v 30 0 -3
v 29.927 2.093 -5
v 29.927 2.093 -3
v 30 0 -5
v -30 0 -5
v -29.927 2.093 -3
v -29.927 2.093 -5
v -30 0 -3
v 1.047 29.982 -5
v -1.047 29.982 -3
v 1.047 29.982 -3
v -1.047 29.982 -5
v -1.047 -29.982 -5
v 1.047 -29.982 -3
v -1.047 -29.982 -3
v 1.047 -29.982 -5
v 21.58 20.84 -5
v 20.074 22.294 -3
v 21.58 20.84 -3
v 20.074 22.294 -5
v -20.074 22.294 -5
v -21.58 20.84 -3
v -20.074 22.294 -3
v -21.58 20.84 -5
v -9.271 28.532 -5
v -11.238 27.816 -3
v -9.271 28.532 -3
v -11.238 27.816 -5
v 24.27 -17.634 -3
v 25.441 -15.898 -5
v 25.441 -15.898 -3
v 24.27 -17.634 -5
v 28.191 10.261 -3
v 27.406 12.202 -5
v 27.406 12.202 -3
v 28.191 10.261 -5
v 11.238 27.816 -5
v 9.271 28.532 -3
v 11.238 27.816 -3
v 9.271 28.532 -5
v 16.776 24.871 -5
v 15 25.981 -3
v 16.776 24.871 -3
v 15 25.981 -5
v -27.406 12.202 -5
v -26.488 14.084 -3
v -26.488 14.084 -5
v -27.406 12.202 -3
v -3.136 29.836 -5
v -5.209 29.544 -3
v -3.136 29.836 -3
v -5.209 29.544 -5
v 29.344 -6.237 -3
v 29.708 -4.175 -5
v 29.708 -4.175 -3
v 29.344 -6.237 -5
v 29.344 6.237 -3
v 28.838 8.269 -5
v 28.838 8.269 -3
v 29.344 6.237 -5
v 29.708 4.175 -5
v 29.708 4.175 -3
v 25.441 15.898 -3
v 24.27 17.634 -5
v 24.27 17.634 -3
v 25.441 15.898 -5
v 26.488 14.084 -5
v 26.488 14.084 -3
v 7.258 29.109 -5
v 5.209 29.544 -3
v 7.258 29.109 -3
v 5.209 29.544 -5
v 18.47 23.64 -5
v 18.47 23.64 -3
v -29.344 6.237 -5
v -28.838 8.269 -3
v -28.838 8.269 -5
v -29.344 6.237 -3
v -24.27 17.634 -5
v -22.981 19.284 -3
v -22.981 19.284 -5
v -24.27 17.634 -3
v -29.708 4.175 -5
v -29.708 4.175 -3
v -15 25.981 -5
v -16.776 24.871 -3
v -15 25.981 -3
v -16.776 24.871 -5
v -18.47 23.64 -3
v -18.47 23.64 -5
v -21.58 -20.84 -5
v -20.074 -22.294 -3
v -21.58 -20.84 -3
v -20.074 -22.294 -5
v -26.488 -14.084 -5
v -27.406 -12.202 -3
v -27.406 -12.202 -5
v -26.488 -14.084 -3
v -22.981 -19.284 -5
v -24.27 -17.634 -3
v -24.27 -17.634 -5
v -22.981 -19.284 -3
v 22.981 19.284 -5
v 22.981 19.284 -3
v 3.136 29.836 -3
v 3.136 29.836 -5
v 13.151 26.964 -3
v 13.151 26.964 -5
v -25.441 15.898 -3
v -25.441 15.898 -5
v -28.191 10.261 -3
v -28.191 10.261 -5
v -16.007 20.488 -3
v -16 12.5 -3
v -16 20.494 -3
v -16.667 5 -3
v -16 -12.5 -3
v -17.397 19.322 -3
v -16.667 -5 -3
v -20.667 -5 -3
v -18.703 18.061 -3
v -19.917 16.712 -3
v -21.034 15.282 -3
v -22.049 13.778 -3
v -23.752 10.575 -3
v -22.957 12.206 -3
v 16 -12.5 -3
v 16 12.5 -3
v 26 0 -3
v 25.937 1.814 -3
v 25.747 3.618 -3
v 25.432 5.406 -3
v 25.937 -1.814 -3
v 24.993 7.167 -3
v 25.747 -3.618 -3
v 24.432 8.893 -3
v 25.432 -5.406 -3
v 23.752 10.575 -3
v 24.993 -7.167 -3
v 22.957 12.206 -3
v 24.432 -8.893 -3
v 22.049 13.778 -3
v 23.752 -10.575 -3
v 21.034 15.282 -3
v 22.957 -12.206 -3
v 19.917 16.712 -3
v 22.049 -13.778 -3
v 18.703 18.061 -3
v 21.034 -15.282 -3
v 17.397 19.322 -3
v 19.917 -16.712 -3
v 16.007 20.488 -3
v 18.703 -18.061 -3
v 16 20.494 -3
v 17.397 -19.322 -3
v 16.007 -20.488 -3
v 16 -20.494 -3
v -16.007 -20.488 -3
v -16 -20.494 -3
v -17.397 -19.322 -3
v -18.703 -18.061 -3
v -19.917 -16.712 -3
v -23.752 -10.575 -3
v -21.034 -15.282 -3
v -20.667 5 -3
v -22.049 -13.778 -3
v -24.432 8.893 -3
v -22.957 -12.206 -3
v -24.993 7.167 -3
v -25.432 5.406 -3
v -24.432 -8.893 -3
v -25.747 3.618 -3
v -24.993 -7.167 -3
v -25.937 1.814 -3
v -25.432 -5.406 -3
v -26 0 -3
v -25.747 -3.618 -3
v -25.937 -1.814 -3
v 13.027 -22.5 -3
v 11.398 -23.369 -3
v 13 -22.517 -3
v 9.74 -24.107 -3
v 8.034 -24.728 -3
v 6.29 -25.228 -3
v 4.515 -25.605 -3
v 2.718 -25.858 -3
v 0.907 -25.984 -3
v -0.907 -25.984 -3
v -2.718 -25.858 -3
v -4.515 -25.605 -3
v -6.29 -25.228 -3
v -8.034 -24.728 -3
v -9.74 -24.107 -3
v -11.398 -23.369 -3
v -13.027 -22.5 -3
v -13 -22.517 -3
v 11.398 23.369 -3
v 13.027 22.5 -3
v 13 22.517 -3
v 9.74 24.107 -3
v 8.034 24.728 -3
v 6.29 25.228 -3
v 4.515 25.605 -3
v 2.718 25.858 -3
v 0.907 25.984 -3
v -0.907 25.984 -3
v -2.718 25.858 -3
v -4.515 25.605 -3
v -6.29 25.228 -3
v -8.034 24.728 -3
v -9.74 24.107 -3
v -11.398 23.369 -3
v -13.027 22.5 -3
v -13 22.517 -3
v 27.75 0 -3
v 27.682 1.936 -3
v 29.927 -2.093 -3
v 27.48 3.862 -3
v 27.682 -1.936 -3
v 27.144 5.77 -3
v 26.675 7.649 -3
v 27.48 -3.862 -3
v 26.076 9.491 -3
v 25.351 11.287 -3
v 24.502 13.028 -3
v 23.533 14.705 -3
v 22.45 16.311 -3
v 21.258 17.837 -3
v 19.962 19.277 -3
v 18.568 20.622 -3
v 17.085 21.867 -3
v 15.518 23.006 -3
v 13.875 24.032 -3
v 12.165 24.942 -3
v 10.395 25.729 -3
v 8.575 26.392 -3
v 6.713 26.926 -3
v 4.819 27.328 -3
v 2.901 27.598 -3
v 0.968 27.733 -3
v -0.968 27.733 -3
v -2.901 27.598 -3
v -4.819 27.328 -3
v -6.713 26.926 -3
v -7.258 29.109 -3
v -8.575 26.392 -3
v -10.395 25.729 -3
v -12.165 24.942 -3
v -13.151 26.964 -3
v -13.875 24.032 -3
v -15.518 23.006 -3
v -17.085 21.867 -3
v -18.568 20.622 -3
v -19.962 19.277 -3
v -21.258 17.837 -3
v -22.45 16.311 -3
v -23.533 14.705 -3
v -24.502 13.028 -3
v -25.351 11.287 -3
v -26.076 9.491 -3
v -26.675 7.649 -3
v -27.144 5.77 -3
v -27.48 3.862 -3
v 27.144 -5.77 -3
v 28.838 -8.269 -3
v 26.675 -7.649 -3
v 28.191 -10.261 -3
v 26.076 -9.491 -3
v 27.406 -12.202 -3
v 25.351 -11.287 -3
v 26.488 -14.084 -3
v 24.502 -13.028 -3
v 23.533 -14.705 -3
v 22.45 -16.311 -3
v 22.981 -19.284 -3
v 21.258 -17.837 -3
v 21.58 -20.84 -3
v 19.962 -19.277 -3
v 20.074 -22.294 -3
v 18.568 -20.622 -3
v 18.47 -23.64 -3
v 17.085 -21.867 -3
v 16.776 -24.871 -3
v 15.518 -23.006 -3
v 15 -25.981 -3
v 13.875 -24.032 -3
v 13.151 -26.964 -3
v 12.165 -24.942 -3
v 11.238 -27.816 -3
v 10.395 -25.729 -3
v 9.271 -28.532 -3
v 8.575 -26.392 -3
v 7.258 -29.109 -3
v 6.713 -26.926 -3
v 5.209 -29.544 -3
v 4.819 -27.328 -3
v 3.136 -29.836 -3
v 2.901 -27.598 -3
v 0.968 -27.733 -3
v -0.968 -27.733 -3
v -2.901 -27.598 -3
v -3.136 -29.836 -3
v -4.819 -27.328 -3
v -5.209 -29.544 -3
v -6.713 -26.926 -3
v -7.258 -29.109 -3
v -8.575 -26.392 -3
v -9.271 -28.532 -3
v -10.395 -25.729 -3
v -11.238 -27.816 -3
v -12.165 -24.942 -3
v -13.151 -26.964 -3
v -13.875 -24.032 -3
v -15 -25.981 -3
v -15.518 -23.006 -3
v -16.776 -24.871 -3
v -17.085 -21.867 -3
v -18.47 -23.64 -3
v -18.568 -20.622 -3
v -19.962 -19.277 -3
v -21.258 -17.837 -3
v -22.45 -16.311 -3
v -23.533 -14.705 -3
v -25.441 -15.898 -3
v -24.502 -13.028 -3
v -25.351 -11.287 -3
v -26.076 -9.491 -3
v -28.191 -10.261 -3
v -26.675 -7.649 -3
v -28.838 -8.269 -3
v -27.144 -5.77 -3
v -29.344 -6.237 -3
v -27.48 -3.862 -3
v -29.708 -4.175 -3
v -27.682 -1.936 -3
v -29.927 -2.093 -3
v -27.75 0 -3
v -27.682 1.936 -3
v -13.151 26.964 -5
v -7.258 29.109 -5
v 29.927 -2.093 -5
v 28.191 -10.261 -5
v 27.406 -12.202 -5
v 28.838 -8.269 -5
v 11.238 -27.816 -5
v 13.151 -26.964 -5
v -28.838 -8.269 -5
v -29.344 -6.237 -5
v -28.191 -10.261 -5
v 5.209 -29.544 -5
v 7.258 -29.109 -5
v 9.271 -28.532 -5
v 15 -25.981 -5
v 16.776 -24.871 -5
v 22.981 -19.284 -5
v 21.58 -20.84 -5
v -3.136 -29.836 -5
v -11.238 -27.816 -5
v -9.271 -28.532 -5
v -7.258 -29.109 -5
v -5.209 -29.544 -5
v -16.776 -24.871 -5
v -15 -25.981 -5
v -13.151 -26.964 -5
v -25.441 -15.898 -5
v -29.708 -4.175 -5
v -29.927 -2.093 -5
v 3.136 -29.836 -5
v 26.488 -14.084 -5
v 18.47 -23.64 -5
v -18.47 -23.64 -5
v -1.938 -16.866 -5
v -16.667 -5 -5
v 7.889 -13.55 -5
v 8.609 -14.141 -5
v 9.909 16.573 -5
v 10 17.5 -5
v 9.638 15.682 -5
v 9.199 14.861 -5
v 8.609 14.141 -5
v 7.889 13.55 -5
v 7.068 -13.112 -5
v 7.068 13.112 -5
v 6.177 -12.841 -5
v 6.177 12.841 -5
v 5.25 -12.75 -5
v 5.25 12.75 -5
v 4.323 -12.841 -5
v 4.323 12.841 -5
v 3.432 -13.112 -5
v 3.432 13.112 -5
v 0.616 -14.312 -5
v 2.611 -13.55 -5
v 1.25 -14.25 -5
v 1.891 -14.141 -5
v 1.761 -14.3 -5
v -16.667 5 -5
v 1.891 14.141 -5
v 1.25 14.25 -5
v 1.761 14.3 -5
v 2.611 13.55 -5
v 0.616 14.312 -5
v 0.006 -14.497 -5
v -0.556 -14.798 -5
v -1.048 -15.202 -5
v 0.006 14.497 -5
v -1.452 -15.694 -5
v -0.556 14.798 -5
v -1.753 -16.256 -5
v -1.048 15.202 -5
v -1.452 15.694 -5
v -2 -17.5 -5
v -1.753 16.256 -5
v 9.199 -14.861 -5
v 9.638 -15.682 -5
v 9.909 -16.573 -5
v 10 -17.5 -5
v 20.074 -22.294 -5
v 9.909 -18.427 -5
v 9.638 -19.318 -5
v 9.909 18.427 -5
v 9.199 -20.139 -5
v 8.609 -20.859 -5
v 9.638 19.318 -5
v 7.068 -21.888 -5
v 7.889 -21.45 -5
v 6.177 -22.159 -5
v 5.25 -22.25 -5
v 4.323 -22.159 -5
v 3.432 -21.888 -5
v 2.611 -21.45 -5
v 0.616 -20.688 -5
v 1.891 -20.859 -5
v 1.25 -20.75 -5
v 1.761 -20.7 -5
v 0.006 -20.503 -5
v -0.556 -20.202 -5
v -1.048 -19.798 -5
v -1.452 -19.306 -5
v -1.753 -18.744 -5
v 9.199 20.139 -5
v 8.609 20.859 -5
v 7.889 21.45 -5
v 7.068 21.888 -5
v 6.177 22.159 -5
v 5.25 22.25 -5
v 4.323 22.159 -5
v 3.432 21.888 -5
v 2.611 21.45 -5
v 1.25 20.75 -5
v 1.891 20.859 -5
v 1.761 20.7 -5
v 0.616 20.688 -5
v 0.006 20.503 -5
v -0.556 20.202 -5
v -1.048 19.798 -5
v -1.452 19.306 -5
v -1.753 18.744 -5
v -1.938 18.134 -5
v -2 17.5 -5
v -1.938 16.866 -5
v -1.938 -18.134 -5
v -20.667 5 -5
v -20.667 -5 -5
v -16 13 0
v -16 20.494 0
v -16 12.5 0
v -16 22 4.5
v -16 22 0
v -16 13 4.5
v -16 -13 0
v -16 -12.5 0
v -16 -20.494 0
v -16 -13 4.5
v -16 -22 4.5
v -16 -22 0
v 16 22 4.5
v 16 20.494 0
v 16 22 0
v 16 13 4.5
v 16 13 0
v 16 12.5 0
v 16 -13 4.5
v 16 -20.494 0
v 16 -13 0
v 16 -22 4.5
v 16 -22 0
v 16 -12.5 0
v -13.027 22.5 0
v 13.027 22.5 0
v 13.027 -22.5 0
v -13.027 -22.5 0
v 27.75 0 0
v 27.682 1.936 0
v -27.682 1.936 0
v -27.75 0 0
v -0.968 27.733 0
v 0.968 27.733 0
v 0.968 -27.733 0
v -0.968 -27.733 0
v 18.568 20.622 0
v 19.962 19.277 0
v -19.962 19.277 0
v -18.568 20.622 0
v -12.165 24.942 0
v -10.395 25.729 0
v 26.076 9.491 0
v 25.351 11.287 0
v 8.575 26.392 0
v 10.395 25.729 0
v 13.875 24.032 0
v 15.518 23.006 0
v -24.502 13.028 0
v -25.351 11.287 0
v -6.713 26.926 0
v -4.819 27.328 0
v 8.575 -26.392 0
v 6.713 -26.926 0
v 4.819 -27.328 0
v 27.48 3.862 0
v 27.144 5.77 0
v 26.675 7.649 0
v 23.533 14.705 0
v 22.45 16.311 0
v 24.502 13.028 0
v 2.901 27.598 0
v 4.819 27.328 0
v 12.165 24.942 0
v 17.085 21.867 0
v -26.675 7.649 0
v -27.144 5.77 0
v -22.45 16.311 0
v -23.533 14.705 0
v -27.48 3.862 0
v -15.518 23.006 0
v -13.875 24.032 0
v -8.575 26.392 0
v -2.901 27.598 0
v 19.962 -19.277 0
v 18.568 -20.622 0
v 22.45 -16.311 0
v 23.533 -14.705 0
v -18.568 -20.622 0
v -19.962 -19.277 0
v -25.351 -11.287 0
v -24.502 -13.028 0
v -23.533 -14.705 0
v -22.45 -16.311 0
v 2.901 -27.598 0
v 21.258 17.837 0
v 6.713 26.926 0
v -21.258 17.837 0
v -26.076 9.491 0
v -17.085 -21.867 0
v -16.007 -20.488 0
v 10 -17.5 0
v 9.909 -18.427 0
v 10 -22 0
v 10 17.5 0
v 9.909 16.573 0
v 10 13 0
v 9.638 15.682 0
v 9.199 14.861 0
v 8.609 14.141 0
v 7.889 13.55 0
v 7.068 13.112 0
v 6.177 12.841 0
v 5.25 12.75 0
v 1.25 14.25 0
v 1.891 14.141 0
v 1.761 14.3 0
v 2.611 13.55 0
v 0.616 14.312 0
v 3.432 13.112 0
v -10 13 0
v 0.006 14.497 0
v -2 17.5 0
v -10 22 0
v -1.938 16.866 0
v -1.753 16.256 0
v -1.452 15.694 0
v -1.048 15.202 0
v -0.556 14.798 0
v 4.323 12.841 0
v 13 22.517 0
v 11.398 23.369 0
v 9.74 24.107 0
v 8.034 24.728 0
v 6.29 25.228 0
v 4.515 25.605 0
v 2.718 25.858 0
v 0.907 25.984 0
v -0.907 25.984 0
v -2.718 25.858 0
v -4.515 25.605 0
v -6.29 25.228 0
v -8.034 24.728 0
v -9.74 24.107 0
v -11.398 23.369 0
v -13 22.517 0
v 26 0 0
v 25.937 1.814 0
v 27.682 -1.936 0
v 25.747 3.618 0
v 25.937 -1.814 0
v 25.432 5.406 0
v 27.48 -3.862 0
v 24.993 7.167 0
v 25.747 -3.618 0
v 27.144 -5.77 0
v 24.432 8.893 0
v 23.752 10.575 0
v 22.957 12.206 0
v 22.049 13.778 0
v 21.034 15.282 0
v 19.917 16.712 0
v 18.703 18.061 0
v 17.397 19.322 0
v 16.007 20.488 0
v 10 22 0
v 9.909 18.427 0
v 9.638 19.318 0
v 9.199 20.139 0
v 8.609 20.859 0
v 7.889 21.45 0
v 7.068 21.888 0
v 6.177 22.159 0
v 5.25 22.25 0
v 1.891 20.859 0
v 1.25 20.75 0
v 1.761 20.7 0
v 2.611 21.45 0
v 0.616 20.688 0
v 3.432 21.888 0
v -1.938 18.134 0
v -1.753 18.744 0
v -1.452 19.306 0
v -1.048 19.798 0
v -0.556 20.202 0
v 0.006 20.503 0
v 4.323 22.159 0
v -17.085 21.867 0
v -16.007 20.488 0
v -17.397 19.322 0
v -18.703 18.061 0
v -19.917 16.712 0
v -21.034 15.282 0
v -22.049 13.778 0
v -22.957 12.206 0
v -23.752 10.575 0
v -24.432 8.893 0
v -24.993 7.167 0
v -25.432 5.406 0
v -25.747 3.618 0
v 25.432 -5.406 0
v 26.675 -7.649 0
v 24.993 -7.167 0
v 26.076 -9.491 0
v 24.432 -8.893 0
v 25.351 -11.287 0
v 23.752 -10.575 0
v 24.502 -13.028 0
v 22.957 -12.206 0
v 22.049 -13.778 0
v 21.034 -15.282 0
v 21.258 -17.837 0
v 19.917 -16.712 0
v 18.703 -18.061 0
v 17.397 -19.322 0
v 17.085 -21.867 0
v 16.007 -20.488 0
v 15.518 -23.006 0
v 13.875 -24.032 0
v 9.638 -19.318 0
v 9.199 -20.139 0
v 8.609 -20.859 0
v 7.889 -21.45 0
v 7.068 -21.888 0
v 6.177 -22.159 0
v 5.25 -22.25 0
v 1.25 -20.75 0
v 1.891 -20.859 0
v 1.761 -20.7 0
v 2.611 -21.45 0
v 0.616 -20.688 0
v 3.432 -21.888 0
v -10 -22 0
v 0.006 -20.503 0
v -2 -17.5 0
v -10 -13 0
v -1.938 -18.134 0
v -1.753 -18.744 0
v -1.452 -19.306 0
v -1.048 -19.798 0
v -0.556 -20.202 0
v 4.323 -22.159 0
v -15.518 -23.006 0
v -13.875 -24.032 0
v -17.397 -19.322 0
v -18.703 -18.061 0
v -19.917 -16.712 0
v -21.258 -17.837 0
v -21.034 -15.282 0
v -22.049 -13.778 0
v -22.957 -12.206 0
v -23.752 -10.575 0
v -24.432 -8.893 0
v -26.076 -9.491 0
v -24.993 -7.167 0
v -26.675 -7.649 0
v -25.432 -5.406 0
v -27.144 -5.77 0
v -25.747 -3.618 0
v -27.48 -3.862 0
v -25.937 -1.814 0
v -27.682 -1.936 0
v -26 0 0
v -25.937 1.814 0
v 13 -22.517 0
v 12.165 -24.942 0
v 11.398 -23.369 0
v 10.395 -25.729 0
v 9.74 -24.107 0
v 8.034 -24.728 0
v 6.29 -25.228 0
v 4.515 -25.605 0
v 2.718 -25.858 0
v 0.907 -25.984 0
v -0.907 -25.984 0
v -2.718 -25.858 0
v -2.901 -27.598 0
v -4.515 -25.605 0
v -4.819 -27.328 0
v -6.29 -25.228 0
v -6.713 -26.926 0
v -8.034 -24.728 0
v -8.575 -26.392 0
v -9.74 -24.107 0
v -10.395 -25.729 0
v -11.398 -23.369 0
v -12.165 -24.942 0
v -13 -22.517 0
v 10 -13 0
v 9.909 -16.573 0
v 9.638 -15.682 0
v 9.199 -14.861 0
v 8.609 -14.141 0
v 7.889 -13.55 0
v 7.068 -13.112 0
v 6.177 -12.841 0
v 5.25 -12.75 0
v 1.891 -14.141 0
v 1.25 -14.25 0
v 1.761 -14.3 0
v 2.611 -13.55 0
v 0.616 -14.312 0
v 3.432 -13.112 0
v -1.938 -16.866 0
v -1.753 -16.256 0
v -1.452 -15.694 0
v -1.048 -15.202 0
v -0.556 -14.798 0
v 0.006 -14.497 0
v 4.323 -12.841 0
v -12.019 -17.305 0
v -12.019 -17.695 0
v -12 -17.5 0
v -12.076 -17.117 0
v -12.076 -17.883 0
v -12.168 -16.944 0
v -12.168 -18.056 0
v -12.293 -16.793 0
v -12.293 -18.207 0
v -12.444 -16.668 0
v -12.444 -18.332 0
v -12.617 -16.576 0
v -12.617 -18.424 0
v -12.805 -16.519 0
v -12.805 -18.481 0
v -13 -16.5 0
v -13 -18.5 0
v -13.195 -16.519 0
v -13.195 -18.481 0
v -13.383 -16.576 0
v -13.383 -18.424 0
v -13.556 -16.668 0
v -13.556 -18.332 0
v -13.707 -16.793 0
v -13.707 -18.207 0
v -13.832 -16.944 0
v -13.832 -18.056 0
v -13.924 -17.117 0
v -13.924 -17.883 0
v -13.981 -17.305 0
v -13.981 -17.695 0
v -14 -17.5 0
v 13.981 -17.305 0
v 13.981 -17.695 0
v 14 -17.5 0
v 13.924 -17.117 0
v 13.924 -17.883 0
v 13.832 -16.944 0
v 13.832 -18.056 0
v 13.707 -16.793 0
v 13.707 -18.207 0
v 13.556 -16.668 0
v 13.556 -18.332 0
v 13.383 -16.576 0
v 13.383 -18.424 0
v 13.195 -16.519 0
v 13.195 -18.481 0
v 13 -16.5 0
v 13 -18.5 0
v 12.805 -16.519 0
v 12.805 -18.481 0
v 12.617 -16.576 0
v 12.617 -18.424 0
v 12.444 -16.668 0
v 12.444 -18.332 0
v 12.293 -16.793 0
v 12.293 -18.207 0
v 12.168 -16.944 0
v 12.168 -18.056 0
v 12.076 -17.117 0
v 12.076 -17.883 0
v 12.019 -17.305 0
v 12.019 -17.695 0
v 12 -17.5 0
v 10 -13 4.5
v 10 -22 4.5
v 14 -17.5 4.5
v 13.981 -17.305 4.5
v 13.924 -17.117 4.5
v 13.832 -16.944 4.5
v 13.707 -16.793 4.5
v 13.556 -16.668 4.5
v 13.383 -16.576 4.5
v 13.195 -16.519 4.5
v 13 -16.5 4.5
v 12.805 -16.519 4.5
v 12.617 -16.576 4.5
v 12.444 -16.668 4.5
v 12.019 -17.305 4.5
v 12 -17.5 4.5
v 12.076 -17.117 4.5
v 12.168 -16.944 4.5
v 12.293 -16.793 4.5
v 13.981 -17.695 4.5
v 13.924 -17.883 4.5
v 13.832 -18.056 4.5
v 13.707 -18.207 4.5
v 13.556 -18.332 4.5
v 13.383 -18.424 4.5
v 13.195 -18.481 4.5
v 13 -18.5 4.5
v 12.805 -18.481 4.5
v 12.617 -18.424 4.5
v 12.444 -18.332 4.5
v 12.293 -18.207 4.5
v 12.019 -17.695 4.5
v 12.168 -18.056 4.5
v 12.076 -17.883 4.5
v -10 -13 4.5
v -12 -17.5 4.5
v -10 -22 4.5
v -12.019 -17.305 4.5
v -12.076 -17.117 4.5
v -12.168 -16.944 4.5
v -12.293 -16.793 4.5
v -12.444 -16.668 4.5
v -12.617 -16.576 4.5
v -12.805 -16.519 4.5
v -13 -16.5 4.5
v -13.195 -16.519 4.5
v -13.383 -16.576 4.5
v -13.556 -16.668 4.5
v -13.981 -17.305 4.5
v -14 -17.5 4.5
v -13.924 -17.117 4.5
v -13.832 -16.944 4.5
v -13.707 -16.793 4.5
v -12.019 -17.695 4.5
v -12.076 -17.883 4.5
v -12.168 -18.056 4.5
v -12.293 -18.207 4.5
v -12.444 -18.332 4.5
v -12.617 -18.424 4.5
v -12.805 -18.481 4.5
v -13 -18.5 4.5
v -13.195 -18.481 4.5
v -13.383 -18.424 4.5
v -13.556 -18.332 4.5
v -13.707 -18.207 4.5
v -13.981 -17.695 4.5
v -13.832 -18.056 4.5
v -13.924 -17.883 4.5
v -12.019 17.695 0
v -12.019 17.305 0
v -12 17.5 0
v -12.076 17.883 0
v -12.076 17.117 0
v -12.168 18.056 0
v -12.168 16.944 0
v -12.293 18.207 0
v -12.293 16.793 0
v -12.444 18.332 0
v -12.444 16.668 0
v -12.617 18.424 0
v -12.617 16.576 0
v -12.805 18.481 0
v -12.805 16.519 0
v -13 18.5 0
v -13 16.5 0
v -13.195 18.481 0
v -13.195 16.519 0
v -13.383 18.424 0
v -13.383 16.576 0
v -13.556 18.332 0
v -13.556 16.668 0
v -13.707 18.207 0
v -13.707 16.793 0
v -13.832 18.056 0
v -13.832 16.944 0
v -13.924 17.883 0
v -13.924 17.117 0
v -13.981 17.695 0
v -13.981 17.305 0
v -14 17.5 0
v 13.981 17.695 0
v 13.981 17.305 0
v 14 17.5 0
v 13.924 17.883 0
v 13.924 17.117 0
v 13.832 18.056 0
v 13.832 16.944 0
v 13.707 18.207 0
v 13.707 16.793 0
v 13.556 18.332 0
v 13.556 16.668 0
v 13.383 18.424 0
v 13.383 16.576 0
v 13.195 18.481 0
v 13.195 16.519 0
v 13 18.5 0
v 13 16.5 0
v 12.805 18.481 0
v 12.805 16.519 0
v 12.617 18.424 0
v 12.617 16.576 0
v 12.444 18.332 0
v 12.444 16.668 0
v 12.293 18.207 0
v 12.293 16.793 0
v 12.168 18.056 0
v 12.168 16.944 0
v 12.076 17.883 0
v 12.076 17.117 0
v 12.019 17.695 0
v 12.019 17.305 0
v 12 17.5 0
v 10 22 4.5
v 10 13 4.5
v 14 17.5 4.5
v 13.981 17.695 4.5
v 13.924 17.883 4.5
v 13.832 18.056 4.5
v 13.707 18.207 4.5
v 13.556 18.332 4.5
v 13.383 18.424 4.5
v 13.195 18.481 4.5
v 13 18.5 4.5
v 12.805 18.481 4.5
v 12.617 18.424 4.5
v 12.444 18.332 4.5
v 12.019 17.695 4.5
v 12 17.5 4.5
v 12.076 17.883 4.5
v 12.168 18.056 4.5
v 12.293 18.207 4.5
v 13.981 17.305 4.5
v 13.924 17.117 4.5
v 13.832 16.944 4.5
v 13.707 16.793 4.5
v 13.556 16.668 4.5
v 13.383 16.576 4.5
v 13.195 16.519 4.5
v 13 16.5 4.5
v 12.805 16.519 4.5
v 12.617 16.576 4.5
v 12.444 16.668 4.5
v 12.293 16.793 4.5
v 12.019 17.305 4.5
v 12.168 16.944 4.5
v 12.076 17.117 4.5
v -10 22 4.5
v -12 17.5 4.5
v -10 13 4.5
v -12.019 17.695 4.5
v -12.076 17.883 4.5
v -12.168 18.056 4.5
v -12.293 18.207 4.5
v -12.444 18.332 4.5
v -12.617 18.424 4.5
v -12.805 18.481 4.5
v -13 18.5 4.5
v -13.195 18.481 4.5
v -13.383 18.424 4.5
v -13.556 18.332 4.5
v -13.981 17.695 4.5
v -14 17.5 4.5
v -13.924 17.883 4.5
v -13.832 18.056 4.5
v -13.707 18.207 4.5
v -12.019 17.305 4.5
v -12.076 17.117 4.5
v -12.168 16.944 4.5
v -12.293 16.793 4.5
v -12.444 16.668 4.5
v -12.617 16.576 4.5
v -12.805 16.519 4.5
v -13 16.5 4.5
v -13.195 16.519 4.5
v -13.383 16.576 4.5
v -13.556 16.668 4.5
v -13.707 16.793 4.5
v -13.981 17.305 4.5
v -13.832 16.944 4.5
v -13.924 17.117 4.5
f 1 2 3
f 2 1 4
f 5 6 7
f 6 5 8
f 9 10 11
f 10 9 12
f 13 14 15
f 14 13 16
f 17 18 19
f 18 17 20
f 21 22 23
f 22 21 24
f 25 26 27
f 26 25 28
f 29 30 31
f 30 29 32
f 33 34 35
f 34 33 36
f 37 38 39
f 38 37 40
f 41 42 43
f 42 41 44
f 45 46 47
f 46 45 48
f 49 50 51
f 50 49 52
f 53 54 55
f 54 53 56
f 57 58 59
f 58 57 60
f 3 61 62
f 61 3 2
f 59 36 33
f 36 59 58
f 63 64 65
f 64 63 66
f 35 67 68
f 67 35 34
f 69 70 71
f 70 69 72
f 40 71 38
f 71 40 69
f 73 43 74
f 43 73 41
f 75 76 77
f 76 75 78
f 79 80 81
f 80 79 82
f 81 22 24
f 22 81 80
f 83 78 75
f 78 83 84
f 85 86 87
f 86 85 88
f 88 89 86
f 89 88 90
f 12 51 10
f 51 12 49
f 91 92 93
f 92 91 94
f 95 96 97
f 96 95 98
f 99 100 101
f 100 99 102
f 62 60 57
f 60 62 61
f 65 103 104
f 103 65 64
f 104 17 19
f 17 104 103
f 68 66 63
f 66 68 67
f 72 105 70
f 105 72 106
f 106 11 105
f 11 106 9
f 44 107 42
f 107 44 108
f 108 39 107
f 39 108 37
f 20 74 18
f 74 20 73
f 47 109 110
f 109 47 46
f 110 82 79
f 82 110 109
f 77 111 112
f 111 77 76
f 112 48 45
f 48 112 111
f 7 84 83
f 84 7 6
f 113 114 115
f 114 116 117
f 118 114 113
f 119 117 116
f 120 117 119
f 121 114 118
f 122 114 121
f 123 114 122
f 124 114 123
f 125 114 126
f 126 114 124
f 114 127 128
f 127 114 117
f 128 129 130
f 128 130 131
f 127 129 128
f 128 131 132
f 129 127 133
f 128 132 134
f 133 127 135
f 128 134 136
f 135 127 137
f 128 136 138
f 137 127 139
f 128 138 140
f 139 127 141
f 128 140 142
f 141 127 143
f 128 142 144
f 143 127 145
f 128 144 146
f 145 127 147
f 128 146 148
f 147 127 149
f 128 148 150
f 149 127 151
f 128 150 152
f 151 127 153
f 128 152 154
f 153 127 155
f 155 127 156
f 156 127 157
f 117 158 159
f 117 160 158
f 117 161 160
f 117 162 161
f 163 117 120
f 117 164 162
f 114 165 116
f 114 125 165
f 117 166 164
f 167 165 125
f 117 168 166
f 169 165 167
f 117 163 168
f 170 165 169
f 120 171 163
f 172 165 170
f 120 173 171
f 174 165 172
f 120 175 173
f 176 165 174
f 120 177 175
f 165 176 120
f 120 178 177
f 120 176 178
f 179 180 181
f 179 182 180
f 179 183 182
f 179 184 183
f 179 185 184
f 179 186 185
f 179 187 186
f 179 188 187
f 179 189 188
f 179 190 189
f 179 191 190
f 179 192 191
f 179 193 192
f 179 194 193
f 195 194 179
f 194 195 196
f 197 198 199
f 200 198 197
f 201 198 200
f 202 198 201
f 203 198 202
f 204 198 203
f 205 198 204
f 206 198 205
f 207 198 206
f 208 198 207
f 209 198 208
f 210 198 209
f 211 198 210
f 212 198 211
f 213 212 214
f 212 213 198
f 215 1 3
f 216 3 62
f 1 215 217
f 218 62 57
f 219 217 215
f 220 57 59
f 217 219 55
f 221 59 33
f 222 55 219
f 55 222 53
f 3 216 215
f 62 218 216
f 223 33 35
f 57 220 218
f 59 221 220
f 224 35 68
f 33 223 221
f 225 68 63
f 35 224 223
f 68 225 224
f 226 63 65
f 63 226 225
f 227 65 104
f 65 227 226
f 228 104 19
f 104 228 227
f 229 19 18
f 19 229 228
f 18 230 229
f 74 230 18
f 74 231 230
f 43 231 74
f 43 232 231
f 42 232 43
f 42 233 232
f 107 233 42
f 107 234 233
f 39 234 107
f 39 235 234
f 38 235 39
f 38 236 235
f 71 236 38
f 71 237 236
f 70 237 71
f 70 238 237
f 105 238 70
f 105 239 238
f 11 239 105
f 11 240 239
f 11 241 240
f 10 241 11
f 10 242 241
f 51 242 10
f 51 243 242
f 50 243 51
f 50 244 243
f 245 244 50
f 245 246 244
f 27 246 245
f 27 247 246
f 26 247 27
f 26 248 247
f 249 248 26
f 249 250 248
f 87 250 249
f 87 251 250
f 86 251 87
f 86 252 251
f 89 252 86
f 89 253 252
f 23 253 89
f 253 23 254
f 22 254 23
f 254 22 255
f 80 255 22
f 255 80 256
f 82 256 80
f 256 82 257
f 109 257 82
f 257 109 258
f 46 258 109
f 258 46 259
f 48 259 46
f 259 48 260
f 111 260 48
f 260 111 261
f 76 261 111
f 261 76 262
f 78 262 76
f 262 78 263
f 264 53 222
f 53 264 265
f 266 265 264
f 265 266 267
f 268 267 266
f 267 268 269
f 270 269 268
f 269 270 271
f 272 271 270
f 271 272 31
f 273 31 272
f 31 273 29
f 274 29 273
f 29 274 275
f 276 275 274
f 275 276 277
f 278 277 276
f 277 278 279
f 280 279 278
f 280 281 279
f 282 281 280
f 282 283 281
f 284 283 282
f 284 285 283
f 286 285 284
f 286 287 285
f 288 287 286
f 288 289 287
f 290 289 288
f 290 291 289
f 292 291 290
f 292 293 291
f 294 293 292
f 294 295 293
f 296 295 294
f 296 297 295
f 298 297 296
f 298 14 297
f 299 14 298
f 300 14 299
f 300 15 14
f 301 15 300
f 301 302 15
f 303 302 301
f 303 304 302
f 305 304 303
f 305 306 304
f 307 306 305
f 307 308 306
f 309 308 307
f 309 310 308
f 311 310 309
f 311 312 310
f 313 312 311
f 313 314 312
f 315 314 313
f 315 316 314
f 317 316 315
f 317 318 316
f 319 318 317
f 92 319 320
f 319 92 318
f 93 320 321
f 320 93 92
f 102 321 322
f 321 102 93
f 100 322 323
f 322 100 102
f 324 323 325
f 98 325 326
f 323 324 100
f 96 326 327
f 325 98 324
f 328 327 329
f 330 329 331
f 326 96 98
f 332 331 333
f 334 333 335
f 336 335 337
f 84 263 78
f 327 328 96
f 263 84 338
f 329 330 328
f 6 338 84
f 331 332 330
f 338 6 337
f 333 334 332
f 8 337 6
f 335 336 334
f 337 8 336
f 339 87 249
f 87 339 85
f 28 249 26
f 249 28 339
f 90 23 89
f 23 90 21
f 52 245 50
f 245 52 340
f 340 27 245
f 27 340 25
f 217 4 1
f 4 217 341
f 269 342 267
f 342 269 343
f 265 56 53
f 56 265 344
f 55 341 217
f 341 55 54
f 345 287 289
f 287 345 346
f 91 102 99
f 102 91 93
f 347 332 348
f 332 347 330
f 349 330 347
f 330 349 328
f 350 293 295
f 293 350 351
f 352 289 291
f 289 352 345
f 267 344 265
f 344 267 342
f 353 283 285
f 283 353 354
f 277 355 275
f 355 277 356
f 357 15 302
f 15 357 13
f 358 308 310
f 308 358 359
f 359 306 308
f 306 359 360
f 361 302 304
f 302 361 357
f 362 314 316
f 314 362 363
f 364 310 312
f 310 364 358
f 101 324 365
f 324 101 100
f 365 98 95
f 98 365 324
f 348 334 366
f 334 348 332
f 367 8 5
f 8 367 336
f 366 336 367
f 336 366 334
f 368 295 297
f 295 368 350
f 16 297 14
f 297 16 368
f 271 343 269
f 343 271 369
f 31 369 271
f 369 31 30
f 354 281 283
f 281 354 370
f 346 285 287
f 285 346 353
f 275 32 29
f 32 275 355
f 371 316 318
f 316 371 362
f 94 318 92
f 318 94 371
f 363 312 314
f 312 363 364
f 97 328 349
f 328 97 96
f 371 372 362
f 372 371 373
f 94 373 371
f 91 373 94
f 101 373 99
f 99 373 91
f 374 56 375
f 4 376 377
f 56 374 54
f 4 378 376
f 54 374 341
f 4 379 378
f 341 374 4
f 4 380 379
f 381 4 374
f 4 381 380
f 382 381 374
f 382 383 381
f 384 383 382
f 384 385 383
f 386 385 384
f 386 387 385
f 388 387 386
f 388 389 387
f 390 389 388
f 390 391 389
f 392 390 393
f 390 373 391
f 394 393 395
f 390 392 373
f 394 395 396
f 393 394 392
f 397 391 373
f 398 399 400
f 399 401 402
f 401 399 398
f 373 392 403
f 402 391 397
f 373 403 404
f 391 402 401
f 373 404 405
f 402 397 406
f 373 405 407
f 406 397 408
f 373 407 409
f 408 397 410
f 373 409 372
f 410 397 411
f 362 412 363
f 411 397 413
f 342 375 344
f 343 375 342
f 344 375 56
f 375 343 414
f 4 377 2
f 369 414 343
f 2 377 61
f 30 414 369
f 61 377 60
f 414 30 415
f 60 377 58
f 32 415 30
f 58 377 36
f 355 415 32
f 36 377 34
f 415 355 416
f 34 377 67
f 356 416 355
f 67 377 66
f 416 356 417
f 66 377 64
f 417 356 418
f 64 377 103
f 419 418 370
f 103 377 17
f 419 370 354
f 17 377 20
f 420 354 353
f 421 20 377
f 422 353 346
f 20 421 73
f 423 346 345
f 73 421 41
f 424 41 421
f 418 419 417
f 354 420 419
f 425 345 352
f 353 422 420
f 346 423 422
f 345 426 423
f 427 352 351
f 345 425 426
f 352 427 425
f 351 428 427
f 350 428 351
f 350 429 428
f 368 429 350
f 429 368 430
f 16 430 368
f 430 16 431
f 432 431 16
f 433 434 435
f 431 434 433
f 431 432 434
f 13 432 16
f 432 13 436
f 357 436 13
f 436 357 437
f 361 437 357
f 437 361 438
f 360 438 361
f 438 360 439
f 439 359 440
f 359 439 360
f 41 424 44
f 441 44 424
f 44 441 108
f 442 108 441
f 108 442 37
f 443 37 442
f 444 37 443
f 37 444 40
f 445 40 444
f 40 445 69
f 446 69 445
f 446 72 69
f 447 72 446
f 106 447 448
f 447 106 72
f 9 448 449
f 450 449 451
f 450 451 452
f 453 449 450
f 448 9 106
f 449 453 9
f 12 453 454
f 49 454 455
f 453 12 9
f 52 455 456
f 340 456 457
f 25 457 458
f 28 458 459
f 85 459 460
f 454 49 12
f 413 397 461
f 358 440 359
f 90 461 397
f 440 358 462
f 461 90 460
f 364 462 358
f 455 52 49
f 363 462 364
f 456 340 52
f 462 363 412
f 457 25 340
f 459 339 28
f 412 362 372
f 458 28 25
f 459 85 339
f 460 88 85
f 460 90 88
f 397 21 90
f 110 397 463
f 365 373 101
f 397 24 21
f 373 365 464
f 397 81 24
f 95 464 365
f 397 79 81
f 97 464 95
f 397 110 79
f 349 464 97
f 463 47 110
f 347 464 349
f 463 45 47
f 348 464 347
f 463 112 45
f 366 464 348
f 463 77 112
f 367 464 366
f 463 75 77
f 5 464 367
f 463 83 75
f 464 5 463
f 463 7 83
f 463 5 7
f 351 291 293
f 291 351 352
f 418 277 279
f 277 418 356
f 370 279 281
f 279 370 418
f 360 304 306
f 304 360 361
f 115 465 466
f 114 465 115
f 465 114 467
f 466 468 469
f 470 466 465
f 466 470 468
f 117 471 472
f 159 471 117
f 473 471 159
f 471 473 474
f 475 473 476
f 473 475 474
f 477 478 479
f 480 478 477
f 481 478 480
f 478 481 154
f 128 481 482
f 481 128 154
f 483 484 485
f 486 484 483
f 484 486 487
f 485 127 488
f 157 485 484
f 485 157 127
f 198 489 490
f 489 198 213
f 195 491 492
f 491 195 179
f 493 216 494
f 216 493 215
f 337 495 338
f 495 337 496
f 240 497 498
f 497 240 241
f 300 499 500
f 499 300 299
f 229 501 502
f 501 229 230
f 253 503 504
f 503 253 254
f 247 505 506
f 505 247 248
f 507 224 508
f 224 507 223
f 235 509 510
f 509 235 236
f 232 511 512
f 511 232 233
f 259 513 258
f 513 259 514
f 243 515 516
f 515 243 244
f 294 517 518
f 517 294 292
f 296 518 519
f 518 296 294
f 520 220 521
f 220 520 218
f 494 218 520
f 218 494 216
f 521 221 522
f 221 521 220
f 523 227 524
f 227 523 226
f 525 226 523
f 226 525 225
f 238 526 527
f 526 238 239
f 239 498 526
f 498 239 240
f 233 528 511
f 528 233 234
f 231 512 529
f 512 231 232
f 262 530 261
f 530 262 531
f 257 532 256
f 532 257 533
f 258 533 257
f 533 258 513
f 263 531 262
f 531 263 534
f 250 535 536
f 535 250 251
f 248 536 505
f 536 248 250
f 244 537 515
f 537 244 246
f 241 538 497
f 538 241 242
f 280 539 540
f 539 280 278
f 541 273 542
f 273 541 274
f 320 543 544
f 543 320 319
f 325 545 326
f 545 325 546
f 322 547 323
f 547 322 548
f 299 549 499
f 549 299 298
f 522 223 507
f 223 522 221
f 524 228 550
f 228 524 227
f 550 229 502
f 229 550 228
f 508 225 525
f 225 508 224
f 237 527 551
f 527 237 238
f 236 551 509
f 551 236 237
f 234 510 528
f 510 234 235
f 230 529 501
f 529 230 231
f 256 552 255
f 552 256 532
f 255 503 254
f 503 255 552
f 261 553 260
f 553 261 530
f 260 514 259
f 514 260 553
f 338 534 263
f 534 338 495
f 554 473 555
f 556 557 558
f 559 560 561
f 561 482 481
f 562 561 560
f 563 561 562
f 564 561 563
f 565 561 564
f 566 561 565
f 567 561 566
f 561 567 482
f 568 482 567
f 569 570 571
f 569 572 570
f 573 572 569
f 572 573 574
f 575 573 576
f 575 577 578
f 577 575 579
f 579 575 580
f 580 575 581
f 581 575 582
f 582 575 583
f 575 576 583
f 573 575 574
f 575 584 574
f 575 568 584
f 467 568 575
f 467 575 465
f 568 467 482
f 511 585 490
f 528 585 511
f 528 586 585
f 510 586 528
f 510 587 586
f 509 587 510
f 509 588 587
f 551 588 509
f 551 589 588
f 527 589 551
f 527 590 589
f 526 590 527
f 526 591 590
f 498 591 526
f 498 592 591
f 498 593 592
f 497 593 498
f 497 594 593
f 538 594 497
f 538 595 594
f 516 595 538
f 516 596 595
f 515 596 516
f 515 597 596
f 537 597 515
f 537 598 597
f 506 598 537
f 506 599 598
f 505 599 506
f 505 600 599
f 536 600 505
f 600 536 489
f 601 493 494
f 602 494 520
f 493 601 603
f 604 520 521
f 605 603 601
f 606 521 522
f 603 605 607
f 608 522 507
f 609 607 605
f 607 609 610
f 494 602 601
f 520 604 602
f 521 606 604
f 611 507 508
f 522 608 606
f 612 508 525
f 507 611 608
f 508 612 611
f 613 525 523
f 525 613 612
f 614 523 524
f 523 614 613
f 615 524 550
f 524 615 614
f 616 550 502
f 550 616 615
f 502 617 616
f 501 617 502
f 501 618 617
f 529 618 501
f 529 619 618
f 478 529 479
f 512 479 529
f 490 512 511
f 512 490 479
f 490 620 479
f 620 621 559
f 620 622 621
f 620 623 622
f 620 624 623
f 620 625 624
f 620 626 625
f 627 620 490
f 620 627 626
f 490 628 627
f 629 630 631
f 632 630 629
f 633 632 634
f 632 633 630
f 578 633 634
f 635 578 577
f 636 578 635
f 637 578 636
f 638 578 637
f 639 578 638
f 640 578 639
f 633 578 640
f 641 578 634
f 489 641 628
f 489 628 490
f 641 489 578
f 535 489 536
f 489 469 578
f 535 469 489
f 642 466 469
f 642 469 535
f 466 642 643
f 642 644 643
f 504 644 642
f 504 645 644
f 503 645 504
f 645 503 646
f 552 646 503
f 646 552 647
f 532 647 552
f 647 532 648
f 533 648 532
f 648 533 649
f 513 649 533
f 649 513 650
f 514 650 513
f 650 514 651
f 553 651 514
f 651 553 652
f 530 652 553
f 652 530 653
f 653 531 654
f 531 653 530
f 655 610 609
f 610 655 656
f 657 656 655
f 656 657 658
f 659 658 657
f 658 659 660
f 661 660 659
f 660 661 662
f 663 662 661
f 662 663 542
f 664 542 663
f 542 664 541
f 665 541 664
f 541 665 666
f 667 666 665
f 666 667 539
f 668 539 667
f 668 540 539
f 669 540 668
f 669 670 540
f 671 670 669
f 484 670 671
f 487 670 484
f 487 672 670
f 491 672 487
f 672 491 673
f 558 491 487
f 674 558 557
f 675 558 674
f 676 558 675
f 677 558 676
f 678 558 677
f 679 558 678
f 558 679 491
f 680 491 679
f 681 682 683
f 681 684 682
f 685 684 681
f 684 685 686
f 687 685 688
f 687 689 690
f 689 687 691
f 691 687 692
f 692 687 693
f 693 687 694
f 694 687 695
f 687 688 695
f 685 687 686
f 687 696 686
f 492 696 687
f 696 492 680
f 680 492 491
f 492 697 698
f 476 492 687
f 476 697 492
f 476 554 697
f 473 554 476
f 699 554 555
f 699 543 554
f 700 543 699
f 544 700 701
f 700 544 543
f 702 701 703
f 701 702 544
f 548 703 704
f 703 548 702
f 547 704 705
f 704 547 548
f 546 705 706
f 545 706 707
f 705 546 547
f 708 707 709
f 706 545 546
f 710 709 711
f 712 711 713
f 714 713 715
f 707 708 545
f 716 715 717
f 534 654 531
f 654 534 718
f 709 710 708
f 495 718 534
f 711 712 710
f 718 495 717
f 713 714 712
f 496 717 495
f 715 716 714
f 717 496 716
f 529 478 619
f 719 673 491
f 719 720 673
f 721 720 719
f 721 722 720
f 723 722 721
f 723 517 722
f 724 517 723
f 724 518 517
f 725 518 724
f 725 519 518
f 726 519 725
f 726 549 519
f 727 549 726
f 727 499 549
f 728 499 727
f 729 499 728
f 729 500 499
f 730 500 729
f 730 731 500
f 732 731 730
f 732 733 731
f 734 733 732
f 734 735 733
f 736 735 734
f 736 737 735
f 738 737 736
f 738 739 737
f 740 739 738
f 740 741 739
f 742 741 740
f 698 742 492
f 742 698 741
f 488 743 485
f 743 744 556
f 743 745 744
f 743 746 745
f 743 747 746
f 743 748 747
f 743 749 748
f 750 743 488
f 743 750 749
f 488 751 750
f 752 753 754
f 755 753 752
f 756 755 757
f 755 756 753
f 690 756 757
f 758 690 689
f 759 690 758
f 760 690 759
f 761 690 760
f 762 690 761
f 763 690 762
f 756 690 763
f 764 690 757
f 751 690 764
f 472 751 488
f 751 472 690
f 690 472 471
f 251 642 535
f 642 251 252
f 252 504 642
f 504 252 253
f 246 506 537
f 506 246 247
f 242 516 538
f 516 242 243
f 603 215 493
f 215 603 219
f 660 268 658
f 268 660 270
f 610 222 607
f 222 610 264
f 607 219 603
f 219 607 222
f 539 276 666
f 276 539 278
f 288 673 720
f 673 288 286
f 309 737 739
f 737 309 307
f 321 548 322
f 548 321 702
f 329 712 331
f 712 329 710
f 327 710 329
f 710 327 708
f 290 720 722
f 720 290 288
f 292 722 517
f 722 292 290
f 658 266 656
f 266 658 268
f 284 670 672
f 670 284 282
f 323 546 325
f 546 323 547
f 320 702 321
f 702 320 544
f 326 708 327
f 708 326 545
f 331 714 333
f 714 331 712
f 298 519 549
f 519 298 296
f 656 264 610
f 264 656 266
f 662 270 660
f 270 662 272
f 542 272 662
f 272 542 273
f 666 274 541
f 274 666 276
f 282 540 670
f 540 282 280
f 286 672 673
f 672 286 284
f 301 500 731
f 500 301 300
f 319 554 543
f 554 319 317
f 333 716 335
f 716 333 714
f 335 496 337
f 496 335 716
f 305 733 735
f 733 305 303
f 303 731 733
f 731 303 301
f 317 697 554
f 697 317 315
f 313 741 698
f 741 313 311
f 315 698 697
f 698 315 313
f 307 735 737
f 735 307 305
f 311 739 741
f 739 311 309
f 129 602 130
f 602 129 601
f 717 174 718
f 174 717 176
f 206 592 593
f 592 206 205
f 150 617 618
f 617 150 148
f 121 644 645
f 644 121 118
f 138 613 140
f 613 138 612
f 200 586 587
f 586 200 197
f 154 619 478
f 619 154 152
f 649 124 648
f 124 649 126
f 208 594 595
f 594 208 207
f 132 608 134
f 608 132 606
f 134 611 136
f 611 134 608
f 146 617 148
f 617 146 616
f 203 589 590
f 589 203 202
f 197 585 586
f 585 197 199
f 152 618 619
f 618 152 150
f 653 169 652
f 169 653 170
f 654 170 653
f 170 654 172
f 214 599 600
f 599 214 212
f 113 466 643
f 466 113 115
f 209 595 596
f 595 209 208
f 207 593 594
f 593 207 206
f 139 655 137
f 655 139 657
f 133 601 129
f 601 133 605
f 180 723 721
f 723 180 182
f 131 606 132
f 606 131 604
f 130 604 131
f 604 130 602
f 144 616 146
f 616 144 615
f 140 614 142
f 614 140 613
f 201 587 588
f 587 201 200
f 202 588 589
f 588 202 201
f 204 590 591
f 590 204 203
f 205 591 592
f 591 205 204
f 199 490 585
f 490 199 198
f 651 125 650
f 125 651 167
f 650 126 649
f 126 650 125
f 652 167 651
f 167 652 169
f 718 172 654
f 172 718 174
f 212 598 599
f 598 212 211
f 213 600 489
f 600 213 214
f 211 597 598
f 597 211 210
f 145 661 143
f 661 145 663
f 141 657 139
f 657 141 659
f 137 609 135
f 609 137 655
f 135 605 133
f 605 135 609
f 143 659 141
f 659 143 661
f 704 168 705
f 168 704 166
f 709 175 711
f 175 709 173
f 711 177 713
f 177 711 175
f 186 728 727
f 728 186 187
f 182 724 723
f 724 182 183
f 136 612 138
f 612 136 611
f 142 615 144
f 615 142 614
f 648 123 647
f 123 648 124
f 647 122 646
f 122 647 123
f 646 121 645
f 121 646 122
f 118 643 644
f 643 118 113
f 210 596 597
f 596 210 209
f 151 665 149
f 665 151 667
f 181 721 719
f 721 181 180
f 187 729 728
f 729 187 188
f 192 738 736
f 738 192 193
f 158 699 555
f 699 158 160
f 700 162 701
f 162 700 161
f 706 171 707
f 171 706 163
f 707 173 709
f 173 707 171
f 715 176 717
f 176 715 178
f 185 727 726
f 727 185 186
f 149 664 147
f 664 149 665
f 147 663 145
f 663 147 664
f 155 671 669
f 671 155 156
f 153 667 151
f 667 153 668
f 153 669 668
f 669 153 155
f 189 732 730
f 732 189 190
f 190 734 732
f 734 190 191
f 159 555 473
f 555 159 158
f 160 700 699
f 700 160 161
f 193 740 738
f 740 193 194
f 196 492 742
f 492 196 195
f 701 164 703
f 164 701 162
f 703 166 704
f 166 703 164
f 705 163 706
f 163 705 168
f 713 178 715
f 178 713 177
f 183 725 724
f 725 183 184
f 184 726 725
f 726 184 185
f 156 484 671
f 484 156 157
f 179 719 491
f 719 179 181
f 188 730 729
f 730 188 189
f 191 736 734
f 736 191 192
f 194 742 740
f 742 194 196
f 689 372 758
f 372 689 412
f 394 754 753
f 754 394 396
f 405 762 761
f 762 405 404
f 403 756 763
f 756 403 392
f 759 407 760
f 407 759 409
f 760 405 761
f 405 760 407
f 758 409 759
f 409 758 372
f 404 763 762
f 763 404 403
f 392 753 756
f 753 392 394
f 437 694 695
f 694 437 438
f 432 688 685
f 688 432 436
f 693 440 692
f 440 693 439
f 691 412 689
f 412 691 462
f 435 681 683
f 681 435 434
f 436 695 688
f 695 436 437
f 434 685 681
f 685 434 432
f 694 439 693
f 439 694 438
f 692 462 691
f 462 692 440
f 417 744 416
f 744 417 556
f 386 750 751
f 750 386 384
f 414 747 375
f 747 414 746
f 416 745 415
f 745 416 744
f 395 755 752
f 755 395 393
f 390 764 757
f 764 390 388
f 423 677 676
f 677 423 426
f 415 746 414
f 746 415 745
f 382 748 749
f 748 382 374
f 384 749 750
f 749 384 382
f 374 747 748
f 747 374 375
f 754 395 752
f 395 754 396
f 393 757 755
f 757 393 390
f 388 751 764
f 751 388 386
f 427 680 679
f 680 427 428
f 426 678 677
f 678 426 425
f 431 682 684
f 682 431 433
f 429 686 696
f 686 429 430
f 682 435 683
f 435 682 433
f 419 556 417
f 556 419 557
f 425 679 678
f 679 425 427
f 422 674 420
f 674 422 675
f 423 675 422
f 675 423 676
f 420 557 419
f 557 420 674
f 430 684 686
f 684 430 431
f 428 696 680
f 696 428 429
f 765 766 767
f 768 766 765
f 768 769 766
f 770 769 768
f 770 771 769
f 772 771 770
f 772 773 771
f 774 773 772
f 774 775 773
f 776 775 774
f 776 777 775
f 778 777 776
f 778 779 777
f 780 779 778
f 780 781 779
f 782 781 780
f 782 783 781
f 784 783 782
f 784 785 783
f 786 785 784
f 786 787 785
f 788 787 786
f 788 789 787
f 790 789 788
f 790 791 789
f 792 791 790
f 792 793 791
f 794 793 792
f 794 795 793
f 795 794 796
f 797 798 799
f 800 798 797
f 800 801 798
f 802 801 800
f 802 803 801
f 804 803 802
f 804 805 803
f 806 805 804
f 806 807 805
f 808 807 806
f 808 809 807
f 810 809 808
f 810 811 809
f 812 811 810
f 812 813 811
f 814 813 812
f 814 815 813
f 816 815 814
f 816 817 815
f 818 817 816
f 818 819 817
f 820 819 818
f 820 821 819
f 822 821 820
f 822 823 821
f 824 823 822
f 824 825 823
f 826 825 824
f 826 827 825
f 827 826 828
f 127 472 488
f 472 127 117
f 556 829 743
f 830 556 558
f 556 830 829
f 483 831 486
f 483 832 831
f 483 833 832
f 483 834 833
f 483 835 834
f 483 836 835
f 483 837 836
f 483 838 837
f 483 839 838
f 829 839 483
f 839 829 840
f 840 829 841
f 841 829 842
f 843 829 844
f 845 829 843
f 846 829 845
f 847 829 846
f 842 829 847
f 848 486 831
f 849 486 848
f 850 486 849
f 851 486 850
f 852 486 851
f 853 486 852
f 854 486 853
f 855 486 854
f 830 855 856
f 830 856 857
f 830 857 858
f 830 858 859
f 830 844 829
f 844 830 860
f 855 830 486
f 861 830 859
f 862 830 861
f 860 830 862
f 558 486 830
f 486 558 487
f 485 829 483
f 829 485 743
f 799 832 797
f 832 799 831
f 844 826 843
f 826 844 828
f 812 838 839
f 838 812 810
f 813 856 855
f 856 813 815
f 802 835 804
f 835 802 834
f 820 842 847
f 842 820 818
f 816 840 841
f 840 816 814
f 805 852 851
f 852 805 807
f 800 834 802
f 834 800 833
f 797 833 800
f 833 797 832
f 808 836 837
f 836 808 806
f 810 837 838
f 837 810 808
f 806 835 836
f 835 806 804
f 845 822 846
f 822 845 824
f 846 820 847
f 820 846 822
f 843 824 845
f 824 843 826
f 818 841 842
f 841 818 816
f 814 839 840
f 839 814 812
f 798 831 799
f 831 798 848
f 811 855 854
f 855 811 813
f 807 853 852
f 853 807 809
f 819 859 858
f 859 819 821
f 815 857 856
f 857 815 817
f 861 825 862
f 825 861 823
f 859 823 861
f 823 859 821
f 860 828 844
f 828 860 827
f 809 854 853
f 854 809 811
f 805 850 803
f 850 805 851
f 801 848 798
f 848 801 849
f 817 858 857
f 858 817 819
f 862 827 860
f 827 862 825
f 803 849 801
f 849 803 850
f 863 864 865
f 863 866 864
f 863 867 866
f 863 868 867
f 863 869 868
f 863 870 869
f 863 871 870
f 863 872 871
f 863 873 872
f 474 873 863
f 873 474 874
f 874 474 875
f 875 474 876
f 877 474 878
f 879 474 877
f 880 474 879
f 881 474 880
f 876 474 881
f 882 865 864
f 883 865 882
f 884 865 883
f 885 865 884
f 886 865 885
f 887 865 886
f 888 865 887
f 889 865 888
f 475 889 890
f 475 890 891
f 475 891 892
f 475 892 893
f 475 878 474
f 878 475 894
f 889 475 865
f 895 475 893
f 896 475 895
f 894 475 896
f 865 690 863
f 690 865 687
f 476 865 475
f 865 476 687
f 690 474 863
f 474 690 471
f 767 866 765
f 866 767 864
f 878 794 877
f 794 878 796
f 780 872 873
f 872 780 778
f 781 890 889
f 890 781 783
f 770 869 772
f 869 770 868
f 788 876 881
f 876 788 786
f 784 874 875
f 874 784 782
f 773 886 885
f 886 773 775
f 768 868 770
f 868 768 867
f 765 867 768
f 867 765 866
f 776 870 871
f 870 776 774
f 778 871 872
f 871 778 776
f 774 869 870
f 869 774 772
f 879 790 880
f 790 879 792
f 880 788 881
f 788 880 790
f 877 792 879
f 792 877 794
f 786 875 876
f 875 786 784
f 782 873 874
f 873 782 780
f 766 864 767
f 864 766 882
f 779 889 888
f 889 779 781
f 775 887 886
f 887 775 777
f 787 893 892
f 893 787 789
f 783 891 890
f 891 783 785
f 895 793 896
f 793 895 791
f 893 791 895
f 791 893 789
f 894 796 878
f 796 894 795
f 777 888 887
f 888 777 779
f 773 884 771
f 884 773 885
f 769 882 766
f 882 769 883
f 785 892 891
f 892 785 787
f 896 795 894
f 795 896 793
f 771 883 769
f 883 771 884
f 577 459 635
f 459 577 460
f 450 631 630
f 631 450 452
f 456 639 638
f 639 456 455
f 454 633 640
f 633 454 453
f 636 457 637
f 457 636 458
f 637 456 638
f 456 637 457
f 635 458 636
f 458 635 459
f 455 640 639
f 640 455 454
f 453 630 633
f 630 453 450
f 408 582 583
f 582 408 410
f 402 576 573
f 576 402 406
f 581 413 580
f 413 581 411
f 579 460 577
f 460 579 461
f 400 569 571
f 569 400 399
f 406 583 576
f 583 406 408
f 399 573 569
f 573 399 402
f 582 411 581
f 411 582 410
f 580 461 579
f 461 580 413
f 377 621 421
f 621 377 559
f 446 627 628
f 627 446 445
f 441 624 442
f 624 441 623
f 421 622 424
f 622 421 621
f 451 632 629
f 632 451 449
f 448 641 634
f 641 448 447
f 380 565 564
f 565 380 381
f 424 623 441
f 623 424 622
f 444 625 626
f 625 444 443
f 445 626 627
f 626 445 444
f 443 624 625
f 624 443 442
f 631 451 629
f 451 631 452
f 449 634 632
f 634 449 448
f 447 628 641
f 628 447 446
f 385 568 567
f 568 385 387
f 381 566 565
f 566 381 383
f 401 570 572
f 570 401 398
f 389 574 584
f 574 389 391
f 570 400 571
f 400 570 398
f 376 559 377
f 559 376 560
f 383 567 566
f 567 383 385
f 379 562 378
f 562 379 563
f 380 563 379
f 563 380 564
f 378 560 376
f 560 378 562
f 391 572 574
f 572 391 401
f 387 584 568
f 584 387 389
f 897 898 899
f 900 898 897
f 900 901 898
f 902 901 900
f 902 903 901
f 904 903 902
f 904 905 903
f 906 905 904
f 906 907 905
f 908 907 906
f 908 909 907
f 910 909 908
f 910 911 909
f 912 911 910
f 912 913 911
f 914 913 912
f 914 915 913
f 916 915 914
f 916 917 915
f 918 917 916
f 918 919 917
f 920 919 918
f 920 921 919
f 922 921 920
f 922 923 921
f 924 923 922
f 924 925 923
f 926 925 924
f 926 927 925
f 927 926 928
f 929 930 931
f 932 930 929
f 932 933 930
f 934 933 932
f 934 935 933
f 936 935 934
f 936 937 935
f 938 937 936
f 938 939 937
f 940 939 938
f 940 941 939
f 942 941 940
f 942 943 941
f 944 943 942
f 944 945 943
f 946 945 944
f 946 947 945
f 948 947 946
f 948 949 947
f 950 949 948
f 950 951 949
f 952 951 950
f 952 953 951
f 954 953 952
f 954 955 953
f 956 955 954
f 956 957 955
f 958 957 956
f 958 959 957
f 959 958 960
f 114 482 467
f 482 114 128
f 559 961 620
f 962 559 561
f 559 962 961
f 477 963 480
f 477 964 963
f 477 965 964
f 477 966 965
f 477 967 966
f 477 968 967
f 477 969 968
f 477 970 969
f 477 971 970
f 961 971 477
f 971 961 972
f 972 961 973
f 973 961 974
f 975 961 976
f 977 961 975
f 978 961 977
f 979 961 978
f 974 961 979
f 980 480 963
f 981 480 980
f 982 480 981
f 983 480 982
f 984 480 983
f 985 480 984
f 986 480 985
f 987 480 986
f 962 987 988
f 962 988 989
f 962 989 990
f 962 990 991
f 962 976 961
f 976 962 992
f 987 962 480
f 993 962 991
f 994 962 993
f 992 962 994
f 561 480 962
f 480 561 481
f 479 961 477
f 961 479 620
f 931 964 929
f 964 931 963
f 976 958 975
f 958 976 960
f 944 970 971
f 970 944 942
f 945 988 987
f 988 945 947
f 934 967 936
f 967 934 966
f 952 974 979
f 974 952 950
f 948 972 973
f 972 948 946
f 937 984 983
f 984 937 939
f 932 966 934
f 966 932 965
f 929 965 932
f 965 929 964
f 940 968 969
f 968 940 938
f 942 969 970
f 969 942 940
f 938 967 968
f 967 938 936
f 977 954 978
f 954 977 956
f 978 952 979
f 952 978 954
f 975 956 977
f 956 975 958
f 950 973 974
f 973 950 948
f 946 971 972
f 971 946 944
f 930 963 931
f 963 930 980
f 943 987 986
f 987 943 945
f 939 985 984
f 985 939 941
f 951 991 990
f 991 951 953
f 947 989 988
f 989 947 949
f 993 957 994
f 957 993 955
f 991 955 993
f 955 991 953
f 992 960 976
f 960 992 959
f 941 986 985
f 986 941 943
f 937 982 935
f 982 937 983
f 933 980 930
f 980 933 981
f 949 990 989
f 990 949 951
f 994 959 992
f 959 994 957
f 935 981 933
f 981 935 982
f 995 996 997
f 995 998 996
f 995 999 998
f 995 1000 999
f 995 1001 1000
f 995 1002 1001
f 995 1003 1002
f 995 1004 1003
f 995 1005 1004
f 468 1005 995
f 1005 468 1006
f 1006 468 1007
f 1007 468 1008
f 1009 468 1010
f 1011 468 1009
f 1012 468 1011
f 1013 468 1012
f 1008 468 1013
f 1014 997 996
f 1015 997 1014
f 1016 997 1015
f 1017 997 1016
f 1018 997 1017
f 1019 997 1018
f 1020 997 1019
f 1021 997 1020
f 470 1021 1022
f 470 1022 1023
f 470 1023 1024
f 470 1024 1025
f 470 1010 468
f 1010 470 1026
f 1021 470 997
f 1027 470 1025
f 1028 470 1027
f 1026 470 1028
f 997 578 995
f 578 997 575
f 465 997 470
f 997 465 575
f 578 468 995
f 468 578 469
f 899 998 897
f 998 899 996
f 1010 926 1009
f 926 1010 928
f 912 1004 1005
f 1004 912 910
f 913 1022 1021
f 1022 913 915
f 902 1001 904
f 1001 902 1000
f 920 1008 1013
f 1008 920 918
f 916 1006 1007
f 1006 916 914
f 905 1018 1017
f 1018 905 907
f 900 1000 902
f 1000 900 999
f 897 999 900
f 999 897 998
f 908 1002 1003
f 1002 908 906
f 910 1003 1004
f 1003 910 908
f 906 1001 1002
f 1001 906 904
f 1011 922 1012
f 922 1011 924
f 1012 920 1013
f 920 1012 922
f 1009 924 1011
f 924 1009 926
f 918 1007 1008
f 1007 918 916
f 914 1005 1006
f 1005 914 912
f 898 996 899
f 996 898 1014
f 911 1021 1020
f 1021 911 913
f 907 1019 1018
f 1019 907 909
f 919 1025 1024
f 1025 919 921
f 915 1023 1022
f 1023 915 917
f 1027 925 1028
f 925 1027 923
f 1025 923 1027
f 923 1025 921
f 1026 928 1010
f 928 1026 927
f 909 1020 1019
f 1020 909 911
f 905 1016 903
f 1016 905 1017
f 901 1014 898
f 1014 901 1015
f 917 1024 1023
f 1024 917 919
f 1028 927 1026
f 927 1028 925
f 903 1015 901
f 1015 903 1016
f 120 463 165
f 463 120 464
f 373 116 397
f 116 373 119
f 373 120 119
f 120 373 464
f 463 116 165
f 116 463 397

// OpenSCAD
/* 
 * Copyright (c) 2017 by Paul-Louis Ageneau
 *
 * This program is free software: you can redistribute it and/or modify
 * it under the terms of the GNU General Public License as published by
 * the Free Software Foundation, either version 3 of the License, or
 * (at your option) any later version.
 *
 * This program is distributed in the hope that it will be useful,
 * but WITHOUT ANY WARRANTY; without even the implied warranty of
 * MERCHANTABILITY or FITNESS FOR A PARTICULAR PURPOSE.  See the
 * GNU General Public License for more details.
 *
 * You should have received a copy of the GNU General Public License
 * along with this program.  If not, see <http://www.gnu.org/licenses/>.
 */

$fn = 90;
servo_height = 19 + 0.5;
servo_width  = 20;
servo_depth  =  9;
servo_side   =  6;
leg_distance = 17.5;
body_radius = 30;
body_border = 2;

difference() {
    union() {
        translate([0, 0, -5]) difference() {
            cylinder(r = body_radius, h = 2);
            cube([32, leg_distance*2+10, 20], center = true);
        }
        translate([0, 0, -3]) difference() {
            cylinder(r = body_radius-body_border-0.25, h = 3);
            cylinder(r = body_radius-body_border-2, h = 20, center = true);
        }
        translate([0, 0, -4]) cube([32, leg_distance*2-10, 2], center = true);
        translate([0,-leg_distance, 0]) support_servo(10, 32);
        translate([0, leg_distance, 0]) support_servo(10, 32);
    }
    union() {
        translate([-(body_radius-body_border)*2/3, 0, 0]) cube([4, 10, 20], center = true);
    }
}
module support_servo(width, depth) {
    $fn = 32;
    union() {
        pad = 5;
        difference() {
            translate([0,0,-pad/2]) cube([depth, width, pad], center=true);
            translate([servo_width/2 - servo_depth/2-0.25, 0, 0]) {
                translate([-4, 0, -servo_height/2]) cylinder(r = 3+0.25, h = 20, center = true);
                translate([0, 0, -servo_height/2]) cylinder(r = servo_depth/2+0.25, h = 20, center = true);
                }
        }
        translate([(servo_width+servo_side)/2, 0, 2.25]) difference() {
            cube([servo_side, servo_depth, 4.5], center = true);
            cylinder(r = 1, h = 10, center = true);
        }
        translate([-(servo_width+servo_side)/2, 0, 2.25]) difference() {
            cube([servo_side, servo_depth, 4.5], center = true);
            cylinder(r = 1, h = 10, center = true);
        }
    }
}
